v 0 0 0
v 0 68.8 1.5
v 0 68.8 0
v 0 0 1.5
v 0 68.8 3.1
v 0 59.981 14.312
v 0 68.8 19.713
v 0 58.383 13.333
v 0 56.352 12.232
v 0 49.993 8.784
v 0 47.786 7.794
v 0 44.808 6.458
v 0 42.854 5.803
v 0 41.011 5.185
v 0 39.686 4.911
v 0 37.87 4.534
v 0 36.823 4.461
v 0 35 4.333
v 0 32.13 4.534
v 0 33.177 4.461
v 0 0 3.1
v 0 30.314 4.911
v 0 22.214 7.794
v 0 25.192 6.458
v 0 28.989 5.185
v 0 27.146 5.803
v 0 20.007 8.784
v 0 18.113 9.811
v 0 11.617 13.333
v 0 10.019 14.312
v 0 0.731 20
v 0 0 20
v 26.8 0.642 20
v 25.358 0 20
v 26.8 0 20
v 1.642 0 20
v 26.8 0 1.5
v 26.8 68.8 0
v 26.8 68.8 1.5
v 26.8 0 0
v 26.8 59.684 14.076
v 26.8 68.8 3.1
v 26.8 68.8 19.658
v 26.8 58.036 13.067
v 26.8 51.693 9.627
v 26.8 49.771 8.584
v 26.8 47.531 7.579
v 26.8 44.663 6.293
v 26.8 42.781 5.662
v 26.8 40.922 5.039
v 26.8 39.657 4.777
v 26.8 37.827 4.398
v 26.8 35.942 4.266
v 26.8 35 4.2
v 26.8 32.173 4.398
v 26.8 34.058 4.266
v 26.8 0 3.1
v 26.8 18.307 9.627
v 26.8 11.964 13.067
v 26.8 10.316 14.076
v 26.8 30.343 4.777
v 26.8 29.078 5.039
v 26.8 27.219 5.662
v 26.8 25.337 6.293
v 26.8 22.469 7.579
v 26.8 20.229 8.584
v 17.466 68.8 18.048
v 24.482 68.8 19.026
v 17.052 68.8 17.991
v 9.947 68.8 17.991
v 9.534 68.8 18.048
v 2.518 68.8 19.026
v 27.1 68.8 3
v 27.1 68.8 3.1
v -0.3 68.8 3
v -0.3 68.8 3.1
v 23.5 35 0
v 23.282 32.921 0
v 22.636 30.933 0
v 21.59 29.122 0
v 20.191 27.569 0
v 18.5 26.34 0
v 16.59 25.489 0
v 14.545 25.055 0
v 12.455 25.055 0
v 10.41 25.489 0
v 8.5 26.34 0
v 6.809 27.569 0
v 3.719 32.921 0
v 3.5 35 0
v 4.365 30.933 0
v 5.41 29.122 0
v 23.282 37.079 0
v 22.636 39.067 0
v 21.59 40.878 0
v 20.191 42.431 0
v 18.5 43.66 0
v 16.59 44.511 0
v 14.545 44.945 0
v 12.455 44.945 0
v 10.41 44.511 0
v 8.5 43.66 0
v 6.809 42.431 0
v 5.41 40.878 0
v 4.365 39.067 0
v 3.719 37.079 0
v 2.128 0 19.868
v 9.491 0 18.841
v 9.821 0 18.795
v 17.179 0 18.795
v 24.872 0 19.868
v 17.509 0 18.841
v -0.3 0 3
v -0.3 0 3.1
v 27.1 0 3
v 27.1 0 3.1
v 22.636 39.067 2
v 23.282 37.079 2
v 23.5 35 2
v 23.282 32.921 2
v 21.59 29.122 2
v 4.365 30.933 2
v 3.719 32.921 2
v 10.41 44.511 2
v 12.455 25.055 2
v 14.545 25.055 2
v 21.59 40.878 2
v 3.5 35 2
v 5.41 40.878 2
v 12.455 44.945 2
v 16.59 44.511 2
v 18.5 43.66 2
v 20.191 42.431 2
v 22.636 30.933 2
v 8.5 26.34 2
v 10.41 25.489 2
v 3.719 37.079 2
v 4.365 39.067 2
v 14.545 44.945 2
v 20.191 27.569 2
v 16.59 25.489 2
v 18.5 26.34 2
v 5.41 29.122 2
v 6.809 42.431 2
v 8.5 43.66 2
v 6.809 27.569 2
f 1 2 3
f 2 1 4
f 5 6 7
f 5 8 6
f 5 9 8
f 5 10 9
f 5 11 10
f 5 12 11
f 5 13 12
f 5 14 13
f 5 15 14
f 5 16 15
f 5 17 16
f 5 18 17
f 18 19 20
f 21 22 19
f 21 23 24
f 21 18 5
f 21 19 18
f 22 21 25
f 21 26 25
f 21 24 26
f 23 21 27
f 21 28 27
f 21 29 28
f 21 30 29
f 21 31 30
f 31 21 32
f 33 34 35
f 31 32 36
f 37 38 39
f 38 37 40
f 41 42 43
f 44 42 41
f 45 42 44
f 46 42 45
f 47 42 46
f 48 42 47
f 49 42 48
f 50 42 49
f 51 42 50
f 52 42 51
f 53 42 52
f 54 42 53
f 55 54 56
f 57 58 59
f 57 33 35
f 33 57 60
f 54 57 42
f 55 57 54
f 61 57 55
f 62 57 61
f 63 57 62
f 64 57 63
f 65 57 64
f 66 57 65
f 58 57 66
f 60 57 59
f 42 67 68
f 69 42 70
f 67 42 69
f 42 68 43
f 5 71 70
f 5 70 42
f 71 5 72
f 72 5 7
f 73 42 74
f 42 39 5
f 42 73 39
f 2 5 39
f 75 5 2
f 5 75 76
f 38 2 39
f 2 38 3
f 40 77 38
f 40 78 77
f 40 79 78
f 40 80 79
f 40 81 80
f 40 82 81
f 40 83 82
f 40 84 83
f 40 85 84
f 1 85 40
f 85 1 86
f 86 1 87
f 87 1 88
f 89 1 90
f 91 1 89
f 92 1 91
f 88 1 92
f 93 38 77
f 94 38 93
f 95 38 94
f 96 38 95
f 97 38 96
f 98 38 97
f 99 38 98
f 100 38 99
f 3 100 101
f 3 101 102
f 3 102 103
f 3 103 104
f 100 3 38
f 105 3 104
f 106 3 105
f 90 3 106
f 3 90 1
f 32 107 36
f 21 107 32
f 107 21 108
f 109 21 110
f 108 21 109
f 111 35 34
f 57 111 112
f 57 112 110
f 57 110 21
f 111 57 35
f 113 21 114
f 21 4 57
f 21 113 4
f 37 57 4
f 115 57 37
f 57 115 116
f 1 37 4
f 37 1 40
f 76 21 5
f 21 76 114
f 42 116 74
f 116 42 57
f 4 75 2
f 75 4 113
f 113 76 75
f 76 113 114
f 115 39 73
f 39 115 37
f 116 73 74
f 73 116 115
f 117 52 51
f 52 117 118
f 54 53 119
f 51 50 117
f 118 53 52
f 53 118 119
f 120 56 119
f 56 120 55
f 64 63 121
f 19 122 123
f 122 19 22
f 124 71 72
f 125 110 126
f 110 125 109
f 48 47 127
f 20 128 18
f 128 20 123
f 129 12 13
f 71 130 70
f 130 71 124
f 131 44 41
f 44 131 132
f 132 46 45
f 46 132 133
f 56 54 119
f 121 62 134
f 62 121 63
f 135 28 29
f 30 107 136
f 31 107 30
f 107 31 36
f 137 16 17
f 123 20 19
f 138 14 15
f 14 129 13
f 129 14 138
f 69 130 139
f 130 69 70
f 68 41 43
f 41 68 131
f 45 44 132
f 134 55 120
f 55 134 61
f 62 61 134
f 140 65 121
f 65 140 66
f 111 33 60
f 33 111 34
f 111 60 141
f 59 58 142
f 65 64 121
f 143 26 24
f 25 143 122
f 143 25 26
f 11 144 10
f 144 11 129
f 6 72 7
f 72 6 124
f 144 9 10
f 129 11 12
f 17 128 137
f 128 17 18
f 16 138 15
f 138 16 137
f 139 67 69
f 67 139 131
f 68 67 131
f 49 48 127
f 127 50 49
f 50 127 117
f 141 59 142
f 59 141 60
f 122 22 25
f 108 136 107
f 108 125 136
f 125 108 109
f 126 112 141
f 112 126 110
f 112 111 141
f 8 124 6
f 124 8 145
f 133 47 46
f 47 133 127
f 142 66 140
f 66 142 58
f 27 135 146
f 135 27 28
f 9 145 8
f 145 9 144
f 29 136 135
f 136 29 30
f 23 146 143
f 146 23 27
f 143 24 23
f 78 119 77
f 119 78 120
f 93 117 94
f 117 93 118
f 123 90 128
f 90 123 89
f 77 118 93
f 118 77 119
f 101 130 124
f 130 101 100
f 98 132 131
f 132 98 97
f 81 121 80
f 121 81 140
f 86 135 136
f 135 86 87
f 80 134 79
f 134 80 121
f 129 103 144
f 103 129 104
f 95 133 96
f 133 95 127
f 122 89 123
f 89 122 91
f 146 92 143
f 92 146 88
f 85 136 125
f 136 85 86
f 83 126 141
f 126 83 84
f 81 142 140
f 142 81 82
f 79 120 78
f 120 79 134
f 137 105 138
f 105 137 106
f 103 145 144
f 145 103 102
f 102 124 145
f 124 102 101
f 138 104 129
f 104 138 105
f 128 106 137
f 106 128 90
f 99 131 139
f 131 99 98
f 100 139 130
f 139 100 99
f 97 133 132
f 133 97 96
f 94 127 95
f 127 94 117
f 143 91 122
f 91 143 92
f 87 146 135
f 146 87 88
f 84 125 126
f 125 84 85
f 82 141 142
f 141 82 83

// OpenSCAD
$fn=30;

/* Diffuser Lense For A Particular Project (OpenSCAD) */
tol = 0.2;

/* LED PCB */
holedia   = 16;

/* Diffuser spec */
dheight = 20;
thickness = 1.5;
standoff = 1.5;
holediffuser = holedia+4;

/* Camera Chamber */
camchamberw_org = 27;
camchamberh_org = 70;

camchamberw = camchamberw_org - tol;
camchamberh = camchamberh_org - tol -1;



/* Enclosure hole */
enclosurew = 19;

/* Diffuser */
difference()
{
  union()
  {
    // Body
    cube( [camchamberw,camchamberh, dheight]);

    // Grip
    translate([0, 0, standoff])
    {
      hull()
      {
        translate([0, 0, 0])
          cube([camchamberw,camchamberh,0.1], center = false);
        translate([-0.6/2, 0, thickness])
          cube([camchamberw+0.6,camchamberh,0.1], center = false);
      }
    }
  }

  translate([camchamberw_org/2,camchamberh_org/2,2])
    linear_extrude(height = dheight, scale=4) 
      circle(d=holediffuser);
  
  translate([camchamberw_org/2,camchamberh_org/2,0])
    linear_extrude(height = dheight) 
      circle(d=holediffuser);
}

/* Camera Frame Model */
%translate([-tol/2,-tol/2,-2])
union()
{
  %linear_extrude(height = 2) 
  {
     difference() 
    {
       offset(r = 0) 
        square(size = [camchamberw_org,camchamberh_org], center = false);
       offset(r = -2) 
        square(size = [camchamberw_org,camchamberh_org], center = false);
     }
  }
  %translate([camchamberw_org/2,camchamberh_org/2,-thickness/2])
     cylinder(thickness,d=holedia);
}
